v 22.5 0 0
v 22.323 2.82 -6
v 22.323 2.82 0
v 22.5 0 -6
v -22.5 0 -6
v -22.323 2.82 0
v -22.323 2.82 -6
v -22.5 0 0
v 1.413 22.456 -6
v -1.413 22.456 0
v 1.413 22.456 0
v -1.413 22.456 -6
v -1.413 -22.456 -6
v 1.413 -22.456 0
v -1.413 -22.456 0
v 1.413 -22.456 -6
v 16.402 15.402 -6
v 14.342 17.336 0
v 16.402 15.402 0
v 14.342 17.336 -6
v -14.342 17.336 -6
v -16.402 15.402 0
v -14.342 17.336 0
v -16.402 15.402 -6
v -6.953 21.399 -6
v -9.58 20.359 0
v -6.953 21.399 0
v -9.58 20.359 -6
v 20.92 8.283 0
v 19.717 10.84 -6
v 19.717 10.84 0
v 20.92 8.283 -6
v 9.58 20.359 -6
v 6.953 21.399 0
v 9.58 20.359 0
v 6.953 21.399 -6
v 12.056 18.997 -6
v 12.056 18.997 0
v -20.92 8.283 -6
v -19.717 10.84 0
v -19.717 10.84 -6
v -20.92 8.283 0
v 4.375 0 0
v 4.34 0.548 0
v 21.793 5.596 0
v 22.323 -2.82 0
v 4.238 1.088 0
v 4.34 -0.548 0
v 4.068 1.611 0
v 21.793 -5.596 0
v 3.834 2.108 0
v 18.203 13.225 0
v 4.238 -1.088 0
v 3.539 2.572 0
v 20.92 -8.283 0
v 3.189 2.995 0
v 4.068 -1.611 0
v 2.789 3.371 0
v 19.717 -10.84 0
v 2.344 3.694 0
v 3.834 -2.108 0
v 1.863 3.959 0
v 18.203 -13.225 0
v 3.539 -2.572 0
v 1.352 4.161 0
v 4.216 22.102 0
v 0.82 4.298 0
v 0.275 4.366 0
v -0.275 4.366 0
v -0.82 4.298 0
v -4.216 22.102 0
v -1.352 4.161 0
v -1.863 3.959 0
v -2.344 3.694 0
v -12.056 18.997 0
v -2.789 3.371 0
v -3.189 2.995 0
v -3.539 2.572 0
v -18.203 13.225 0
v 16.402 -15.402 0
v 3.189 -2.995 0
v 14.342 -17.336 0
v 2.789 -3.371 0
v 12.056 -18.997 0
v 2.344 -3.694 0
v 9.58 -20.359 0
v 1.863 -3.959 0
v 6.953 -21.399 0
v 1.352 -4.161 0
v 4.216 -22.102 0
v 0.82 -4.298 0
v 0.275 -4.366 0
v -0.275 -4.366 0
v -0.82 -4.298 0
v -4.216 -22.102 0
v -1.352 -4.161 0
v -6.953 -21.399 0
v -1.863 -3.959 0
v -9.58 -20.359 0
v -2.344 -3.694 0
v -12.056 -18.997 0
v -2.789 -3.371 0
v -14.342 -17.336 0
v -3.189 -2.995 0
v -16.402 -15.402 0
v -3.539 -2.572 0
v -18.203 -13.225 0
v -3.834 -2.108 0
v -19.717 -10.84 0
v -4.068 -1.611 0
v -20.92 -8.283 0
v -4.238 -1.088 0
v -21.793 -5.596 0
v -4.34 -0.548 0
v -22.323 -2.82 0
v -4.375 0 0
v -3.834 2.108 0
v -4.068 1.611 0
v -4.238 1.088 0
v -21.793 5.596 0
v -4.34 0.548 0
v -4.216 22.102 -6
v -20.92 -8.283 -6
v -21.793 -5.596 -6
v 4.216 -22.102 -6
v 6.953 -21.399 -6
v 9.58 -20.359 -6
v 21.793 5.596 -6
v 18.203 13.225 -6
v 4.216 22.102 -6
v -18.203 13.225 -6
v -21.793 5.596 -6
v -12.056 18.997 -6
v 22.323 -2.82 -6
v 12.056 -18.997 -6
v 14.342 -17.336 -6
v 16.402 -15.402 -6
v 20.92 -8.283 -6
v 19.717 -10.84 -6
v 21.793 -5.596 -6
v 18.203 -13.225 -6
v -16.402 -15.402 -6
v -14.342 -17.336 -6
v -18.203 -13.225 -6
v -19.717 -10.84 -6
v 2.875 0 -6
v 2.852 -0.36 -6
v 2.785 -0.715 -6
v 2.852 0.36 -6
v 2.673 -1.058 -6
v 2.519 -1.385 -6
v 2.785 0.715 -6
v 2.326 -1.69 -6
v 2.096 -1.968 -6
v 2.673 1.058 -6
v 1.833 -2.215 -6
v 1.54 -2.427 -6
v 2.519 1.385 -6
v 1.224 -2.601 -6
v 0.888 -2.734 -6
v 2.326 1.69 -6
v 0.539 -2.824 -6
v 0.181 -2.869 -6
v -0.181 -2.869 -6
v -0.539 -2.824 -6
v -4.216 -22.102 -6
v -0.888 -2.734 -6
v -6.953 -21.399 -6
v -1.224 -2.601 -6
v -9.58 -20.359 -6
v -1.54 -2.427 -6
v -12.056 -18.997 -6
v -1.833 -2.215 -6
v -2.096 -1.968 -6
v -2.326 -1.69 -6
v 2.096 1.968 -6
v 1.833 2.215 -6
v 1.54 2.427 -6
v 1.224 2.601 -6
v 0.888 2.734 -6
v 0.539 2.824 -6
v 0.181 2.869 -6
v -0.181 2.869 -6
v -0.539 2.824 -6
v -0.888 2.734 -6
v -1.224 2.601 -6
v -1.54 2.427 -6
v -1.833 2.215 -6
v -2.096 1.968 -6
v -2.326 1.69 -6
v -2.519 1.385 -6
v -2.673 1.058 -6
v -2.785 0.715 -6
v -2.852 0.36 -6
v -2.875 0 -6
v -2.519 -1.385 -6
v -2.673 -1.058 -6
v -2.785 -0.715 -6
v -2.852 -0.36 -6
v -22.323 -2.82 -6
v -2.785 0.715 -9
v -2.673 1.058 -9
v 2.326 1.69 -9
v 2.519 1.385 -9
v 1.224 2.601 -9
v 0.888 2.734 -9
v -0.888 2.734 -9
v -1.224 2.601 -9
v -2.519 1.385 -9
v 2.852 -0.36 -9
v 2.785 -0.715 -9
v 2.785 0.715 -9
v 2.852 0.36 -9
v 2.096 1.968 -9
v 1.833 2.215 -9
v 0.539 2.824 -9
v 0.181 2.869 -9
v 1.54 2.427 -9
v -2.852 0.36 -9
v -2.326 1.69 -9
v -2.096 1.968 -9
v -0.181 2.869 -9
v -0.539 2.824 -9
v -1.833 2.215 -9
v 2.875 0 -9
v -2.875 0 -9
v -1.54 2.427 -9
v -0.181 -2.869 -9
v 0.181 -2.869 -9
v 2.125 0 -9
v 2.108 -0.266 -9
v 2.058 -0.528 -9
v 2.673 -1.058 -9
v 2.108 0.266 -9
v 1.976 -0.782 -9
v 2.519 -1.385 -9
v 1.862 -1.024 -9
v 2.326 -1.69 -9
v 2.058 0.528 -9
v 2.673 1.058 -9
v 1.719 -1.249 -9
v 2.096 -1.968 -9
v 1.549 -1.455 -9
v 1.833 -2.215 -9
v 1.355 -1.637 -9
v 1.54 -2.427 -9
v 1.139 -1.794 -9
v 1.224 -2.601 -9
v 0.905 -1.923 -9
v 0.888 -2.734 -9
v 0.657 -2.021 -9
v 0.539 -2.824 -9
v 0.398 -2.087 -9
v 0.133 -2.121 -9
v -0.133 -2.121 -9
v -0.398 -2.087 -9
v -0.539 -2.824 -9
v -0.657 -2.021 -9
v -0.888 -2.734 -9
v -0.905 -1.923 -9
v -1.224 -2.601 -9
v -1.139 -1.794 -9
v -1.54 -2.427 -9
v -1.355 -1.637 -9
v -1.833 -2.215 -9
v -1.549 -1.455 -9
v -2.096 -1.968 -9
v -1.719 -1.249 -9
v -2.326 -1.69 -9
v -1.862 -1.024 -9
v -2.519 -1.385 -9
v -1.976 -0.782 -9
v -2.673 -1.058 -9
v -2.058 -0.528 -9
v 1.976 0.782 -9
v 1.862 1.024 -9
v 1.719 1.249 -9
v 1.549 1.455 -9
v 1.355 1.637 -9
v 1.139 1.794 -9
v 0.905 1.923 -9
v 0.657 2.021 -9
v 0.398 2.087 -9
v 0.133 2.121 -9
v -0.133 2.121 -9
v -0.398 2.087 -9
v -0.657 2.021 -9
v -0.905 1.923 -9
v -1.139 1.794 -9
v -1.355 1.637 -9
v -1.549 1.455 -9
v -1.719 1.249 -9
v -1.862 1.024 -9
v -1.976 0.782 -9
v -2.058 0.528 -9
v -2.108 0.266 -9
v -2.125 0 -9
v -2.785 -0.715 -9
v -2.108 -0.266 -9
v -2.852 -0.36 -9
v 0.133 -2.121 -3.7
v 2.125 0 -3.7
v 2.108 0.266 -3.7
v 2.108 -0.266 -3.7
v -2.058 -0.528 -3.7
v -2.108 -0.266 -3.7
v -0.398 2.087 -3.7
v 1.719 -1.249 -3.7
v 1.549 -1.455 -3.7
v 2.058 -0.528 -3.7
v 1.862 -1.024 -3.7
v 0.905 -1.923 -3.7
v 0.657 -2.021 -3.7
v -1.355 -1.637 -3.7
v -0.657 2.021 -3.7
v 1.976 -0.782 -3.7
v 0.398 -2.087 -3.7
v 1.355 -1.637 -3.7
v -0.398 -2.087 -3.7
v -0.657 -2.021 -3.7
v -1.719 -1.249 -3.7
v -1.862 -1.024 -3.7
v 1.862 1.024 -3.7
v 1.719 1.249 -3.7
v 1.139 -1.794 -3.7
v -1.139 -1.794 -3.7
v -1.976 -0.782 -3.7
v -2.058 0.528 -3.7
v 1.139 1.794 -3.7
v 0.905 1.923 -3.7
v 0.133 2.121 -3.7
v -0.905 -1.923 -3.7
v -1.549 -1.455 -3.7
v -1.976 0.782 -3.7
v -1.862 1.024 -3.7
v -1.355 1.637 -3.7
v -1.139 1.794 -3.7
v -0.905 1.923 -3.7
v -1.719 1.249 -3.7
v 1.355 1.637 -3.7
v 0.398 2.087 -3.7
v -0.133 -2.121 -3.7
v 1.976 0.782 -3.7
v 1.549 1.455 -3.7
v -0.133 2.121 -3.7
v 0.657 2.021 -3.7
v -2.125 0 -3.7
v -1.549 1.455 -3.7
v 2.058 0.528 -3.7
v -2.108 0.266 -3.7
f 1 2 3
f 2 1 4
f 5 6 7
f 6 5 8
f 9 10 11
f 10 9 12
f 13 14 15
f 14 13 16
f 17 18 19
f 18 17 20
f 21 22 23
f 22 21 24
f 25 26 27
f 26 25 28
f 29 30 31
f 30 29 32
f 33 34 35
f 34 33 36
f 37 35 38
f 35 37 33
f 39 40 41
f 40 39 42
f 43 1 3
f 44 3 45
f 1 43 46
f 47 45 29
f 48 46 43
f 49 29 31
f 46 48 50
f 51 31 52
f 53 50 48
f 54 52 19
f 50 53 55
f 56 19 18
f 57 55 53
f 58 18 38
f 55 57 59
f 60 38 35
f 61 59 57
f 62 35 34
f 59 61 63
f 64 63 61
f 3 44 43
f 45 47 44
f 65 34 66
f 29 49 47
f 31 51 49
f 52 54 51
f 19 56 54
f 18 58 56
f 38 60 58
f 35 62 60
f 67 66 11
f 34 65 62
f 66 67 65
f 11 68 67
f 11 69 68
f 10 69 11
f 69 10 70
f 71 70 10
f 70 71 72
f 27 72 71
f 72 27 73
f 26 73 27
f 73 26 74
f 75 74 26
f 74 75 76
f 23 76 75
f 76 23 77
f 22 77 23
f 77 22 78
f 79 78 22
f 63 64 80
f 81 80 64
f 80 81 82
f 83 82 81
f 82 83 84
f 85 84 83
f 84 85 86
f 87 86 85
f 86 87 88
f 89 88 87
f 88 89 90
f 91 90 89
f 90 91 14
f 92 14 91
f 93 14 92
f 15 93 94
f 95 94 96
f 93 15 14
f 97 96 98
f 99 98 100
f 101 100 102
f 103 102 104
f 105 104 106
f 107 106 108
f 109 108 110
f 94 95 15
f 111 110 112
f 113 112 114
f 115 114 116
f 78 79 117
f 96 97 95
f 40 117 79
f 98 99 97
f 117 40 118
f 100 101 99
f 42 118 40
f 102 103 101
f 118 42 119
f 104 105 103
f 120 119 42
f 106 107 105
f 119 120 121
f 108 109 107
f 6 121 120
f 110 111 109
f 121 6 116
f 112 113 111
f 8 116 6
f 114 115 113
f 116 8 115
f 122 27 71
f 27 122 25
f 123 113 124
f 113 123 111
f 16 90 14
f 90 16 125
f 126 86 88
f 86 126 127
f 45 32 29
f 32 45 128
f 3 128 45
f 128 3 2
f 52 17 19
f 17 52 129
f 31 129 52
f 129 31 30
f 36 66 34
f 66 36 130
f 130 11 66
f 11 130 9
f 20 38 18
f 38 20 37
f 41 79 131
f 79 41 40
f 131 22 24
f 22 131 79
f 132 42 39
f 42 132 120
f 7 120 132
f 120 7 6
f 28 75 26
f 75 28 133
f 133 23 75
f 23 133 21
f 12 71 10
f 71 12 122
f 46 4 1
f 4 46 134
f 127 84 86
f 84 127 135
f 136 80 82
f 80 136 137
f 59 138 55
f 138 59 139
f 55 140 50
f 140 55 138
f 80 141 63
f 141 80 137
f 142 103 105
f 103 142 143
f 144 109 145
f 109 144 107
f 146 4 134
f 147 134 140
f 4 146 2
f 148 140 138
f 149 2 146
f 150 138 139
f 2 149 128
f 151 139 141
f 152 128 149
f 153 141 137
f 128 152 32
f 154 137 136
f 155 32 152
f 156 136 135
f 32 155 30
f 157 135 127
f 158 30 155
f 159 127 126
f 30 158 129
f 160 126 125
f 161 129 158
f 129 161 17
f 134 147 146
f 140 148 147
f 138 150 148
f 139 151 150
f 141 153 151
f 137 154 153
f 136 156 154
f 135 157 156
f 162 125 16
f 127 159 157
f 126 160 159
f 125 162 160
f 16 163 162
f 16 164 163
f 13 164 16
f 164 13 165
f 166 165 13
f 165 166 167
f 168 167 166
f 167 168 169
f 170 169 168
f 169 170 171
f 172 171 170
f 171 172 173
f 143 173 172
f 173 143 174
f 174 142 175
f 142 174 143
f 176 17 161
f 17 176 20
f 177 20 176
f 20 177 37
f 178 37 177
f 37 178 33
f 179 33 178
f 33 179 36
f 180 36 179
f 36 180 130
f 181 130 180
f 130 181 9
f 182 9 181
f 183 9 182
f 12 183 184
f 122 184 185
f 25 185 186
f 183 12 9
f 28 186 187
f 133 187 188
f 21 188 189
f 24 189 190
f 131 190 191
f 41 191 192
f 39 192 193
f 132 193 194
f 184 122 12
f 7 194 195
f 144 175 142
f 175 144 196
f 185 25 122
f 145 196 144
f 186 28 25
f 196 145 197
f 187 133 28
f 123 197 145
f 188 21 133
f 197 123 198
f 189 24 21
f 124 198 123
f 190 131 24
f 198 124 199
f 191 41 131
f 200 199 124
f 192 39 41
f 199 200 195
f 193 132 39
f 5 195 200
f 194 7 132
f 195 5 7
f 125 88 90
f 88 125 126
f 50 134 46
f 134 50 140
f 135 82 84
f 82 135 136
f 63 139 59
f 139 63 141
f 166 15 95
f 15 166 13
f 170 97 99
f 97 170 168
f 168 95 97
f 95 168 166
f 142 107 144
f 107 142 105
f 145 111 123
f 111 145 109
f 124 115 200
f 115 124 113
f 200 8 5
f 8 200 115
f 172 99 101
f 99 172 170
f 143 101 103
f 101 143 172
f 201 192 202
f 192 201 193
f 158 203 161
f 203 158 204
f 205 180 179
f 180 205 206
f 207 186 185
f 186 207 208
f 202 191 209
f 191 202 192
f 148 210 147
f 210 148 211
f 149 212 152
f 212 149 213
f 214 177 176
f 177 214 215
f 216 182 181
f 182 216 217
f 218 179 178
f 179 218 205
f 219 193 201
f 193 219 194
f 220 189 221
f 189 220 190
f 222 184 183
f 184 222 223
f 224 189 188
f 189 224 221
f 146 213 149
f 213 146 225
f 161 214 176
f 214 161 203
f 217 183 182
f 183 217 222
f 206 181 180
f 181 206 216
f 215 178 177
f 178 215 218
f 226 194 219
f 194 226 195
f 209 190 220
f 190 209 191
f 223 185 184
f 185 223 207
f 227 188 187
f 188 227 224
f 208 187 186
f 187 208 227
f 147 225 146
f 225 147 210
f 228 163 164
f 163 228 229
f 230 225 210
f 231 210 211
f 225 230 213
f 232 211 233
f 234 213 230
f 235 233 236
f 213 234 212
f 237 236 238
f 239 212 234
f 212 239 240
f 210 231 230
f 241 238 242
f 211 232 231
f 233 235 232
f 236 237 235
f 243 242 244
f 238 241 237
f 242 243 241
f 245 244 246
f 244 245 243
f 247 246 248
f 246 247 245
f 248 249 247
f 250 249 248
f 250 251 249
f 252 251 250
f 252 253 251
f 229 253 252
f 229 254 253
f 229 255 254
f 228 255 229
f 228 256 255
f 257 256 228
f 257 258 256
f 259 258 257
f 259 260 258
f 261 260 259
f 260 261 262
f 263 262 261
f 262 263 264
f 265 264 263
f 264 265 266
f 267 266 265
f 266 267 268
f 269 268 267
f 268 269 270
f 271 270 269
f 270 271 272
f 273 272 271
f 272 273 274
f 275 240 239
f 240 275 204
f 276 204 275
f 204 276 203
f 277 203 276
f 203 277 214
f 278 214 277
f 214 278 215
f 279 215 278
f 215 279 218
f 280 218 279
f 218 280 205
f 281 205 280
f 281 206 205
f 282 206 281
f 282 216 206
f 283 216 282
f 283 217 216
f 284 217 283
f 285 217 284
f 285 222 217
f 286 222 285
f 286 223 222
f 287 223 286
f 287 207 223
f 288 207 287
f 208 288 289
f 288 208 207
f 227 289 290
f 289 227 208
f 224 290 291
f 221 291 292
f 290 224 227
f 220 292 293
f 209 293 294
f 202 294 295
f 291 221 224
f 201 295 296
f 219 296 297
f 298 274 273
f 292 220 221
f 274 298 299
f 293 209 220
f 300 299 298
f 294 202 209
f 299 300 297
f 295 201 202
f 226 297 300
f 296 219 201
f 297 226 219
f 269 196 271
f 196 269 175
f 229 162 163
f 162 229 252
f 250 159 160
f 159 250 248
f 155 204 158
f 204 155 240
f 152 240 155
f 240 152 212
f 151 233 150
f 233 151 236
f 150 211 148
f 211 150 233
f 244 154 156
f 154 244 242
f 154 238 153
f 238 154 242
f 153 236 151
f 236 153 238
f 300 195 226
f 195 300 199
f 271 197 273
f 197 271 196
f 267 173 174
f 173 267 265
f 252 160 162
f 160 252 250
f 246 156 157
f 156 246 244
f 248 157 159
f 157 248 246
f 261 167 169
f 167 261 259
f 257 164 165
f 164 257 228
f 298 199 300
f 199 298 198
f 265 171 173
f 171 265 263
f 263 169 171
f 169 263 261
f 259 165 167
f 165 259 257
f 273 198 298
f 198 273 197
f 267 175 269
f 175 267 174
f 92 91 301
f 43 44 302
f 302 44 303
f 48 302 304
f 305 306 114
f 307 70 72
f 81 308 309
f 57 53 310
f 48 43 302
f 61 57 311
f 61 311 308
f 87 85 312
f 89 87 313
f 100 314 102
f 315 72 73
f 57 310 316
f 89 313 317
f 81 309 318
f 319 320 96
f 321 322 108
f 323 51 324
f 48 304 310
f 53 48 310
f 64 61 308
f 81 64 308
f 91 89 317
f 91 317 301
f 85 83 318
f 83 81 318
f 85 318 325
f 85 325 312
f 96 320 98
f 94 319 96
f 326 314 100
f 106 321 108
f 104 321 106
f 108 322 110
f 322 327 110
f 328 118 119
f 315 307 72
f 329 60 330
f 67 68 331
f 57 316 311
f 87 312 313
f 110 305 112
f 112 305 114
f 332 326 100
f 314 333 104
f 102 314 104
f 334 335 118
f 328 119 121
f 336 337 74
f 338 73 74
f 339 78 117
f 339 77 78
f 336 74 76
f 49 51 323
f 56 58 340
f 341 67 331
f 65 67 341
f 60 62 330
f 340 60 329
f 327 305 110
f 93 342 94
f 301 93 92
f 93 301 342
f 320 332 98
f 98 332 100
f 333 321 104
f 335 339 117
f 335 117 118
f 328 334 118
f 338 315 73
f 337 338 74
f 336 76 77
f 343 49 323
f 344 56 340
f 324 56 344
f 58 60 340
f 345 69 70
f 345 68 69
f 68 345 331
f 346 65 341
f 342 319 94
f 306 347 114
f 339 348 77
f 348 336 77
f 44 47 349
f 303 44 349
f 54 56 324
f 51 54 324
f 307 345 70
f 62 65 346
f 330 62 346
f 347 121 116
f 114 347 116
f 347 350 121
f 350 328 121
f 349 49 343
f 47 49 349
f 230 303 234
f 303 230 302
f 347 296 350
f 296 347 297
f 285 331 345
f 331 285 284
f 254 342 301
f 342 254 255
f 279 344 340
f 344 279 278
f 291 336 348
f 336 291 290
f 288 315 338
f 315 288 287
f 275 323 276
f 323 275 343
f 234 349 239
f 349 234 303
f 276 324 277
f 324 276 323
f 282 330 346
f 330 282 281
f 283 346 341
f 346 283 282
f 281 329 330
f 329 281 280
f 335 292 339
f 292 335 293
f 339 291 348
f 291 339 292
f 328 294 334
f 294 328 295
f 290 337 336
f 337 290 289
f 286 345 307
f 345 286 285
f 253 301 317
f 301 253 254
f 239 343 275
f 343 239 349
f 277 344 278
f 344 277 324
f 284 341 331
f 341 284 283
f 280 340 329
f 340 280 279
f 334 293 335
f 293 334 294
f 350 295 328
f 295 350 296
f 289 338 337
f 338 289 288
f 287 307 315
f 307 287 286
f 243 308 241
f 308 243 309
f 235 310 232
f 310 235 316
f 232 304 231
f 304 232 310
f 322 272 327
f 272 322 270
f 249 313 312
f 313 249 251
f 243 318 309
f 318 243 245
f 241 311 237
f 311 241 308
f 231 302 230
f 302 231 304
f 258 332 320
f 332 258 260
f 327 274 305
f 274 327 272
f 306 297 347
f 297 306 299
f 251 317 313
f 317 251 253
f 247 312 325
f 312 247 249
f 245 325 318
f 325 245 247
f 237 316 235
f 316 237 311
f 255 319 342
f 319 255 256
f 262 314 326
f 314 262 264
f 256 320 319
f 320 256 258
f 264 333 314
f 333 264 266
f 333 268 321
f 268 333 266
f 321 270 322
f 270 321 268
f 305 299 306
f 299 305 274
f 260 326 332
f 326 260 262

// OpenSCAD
$fn = 50;


difference() {
	union() {
		translate(v = [0, 0, -6.0000000000]) {
			cylinder(h = 6, r = 22.5000000000);
		}
		translate(v = [0, 0, -9.0000000000]) {
			cylinder(h = 9, r = 2.8750000000);
		}
	}
	union() {
		translate(v = [0, 0, 0]) {
			rotate(a = [0, 0, 0]) {
				difference() {
					union() {
						translate(v = [0, 0, -9.0000000000]) {
							cylinder(h = 9, r = 2.0000000000);
						}
						translate(v = [0, 0, -3.7000000000]) {
							cylinder(h = 3.7000000000, r1 = 2.1250000000, r2 = 4.3750000000);
						}
						translate(v = [0, 0, -9.0000000000]) {
							cylinder(h = 9, r = 2.1250000000);
						}
						translate(v = [0, 0, -9.0000000000]) {
							cylinder(h = 9, r = 2.0000000000);
						}
					}
					union();
				}
			}
		}
	}
}
